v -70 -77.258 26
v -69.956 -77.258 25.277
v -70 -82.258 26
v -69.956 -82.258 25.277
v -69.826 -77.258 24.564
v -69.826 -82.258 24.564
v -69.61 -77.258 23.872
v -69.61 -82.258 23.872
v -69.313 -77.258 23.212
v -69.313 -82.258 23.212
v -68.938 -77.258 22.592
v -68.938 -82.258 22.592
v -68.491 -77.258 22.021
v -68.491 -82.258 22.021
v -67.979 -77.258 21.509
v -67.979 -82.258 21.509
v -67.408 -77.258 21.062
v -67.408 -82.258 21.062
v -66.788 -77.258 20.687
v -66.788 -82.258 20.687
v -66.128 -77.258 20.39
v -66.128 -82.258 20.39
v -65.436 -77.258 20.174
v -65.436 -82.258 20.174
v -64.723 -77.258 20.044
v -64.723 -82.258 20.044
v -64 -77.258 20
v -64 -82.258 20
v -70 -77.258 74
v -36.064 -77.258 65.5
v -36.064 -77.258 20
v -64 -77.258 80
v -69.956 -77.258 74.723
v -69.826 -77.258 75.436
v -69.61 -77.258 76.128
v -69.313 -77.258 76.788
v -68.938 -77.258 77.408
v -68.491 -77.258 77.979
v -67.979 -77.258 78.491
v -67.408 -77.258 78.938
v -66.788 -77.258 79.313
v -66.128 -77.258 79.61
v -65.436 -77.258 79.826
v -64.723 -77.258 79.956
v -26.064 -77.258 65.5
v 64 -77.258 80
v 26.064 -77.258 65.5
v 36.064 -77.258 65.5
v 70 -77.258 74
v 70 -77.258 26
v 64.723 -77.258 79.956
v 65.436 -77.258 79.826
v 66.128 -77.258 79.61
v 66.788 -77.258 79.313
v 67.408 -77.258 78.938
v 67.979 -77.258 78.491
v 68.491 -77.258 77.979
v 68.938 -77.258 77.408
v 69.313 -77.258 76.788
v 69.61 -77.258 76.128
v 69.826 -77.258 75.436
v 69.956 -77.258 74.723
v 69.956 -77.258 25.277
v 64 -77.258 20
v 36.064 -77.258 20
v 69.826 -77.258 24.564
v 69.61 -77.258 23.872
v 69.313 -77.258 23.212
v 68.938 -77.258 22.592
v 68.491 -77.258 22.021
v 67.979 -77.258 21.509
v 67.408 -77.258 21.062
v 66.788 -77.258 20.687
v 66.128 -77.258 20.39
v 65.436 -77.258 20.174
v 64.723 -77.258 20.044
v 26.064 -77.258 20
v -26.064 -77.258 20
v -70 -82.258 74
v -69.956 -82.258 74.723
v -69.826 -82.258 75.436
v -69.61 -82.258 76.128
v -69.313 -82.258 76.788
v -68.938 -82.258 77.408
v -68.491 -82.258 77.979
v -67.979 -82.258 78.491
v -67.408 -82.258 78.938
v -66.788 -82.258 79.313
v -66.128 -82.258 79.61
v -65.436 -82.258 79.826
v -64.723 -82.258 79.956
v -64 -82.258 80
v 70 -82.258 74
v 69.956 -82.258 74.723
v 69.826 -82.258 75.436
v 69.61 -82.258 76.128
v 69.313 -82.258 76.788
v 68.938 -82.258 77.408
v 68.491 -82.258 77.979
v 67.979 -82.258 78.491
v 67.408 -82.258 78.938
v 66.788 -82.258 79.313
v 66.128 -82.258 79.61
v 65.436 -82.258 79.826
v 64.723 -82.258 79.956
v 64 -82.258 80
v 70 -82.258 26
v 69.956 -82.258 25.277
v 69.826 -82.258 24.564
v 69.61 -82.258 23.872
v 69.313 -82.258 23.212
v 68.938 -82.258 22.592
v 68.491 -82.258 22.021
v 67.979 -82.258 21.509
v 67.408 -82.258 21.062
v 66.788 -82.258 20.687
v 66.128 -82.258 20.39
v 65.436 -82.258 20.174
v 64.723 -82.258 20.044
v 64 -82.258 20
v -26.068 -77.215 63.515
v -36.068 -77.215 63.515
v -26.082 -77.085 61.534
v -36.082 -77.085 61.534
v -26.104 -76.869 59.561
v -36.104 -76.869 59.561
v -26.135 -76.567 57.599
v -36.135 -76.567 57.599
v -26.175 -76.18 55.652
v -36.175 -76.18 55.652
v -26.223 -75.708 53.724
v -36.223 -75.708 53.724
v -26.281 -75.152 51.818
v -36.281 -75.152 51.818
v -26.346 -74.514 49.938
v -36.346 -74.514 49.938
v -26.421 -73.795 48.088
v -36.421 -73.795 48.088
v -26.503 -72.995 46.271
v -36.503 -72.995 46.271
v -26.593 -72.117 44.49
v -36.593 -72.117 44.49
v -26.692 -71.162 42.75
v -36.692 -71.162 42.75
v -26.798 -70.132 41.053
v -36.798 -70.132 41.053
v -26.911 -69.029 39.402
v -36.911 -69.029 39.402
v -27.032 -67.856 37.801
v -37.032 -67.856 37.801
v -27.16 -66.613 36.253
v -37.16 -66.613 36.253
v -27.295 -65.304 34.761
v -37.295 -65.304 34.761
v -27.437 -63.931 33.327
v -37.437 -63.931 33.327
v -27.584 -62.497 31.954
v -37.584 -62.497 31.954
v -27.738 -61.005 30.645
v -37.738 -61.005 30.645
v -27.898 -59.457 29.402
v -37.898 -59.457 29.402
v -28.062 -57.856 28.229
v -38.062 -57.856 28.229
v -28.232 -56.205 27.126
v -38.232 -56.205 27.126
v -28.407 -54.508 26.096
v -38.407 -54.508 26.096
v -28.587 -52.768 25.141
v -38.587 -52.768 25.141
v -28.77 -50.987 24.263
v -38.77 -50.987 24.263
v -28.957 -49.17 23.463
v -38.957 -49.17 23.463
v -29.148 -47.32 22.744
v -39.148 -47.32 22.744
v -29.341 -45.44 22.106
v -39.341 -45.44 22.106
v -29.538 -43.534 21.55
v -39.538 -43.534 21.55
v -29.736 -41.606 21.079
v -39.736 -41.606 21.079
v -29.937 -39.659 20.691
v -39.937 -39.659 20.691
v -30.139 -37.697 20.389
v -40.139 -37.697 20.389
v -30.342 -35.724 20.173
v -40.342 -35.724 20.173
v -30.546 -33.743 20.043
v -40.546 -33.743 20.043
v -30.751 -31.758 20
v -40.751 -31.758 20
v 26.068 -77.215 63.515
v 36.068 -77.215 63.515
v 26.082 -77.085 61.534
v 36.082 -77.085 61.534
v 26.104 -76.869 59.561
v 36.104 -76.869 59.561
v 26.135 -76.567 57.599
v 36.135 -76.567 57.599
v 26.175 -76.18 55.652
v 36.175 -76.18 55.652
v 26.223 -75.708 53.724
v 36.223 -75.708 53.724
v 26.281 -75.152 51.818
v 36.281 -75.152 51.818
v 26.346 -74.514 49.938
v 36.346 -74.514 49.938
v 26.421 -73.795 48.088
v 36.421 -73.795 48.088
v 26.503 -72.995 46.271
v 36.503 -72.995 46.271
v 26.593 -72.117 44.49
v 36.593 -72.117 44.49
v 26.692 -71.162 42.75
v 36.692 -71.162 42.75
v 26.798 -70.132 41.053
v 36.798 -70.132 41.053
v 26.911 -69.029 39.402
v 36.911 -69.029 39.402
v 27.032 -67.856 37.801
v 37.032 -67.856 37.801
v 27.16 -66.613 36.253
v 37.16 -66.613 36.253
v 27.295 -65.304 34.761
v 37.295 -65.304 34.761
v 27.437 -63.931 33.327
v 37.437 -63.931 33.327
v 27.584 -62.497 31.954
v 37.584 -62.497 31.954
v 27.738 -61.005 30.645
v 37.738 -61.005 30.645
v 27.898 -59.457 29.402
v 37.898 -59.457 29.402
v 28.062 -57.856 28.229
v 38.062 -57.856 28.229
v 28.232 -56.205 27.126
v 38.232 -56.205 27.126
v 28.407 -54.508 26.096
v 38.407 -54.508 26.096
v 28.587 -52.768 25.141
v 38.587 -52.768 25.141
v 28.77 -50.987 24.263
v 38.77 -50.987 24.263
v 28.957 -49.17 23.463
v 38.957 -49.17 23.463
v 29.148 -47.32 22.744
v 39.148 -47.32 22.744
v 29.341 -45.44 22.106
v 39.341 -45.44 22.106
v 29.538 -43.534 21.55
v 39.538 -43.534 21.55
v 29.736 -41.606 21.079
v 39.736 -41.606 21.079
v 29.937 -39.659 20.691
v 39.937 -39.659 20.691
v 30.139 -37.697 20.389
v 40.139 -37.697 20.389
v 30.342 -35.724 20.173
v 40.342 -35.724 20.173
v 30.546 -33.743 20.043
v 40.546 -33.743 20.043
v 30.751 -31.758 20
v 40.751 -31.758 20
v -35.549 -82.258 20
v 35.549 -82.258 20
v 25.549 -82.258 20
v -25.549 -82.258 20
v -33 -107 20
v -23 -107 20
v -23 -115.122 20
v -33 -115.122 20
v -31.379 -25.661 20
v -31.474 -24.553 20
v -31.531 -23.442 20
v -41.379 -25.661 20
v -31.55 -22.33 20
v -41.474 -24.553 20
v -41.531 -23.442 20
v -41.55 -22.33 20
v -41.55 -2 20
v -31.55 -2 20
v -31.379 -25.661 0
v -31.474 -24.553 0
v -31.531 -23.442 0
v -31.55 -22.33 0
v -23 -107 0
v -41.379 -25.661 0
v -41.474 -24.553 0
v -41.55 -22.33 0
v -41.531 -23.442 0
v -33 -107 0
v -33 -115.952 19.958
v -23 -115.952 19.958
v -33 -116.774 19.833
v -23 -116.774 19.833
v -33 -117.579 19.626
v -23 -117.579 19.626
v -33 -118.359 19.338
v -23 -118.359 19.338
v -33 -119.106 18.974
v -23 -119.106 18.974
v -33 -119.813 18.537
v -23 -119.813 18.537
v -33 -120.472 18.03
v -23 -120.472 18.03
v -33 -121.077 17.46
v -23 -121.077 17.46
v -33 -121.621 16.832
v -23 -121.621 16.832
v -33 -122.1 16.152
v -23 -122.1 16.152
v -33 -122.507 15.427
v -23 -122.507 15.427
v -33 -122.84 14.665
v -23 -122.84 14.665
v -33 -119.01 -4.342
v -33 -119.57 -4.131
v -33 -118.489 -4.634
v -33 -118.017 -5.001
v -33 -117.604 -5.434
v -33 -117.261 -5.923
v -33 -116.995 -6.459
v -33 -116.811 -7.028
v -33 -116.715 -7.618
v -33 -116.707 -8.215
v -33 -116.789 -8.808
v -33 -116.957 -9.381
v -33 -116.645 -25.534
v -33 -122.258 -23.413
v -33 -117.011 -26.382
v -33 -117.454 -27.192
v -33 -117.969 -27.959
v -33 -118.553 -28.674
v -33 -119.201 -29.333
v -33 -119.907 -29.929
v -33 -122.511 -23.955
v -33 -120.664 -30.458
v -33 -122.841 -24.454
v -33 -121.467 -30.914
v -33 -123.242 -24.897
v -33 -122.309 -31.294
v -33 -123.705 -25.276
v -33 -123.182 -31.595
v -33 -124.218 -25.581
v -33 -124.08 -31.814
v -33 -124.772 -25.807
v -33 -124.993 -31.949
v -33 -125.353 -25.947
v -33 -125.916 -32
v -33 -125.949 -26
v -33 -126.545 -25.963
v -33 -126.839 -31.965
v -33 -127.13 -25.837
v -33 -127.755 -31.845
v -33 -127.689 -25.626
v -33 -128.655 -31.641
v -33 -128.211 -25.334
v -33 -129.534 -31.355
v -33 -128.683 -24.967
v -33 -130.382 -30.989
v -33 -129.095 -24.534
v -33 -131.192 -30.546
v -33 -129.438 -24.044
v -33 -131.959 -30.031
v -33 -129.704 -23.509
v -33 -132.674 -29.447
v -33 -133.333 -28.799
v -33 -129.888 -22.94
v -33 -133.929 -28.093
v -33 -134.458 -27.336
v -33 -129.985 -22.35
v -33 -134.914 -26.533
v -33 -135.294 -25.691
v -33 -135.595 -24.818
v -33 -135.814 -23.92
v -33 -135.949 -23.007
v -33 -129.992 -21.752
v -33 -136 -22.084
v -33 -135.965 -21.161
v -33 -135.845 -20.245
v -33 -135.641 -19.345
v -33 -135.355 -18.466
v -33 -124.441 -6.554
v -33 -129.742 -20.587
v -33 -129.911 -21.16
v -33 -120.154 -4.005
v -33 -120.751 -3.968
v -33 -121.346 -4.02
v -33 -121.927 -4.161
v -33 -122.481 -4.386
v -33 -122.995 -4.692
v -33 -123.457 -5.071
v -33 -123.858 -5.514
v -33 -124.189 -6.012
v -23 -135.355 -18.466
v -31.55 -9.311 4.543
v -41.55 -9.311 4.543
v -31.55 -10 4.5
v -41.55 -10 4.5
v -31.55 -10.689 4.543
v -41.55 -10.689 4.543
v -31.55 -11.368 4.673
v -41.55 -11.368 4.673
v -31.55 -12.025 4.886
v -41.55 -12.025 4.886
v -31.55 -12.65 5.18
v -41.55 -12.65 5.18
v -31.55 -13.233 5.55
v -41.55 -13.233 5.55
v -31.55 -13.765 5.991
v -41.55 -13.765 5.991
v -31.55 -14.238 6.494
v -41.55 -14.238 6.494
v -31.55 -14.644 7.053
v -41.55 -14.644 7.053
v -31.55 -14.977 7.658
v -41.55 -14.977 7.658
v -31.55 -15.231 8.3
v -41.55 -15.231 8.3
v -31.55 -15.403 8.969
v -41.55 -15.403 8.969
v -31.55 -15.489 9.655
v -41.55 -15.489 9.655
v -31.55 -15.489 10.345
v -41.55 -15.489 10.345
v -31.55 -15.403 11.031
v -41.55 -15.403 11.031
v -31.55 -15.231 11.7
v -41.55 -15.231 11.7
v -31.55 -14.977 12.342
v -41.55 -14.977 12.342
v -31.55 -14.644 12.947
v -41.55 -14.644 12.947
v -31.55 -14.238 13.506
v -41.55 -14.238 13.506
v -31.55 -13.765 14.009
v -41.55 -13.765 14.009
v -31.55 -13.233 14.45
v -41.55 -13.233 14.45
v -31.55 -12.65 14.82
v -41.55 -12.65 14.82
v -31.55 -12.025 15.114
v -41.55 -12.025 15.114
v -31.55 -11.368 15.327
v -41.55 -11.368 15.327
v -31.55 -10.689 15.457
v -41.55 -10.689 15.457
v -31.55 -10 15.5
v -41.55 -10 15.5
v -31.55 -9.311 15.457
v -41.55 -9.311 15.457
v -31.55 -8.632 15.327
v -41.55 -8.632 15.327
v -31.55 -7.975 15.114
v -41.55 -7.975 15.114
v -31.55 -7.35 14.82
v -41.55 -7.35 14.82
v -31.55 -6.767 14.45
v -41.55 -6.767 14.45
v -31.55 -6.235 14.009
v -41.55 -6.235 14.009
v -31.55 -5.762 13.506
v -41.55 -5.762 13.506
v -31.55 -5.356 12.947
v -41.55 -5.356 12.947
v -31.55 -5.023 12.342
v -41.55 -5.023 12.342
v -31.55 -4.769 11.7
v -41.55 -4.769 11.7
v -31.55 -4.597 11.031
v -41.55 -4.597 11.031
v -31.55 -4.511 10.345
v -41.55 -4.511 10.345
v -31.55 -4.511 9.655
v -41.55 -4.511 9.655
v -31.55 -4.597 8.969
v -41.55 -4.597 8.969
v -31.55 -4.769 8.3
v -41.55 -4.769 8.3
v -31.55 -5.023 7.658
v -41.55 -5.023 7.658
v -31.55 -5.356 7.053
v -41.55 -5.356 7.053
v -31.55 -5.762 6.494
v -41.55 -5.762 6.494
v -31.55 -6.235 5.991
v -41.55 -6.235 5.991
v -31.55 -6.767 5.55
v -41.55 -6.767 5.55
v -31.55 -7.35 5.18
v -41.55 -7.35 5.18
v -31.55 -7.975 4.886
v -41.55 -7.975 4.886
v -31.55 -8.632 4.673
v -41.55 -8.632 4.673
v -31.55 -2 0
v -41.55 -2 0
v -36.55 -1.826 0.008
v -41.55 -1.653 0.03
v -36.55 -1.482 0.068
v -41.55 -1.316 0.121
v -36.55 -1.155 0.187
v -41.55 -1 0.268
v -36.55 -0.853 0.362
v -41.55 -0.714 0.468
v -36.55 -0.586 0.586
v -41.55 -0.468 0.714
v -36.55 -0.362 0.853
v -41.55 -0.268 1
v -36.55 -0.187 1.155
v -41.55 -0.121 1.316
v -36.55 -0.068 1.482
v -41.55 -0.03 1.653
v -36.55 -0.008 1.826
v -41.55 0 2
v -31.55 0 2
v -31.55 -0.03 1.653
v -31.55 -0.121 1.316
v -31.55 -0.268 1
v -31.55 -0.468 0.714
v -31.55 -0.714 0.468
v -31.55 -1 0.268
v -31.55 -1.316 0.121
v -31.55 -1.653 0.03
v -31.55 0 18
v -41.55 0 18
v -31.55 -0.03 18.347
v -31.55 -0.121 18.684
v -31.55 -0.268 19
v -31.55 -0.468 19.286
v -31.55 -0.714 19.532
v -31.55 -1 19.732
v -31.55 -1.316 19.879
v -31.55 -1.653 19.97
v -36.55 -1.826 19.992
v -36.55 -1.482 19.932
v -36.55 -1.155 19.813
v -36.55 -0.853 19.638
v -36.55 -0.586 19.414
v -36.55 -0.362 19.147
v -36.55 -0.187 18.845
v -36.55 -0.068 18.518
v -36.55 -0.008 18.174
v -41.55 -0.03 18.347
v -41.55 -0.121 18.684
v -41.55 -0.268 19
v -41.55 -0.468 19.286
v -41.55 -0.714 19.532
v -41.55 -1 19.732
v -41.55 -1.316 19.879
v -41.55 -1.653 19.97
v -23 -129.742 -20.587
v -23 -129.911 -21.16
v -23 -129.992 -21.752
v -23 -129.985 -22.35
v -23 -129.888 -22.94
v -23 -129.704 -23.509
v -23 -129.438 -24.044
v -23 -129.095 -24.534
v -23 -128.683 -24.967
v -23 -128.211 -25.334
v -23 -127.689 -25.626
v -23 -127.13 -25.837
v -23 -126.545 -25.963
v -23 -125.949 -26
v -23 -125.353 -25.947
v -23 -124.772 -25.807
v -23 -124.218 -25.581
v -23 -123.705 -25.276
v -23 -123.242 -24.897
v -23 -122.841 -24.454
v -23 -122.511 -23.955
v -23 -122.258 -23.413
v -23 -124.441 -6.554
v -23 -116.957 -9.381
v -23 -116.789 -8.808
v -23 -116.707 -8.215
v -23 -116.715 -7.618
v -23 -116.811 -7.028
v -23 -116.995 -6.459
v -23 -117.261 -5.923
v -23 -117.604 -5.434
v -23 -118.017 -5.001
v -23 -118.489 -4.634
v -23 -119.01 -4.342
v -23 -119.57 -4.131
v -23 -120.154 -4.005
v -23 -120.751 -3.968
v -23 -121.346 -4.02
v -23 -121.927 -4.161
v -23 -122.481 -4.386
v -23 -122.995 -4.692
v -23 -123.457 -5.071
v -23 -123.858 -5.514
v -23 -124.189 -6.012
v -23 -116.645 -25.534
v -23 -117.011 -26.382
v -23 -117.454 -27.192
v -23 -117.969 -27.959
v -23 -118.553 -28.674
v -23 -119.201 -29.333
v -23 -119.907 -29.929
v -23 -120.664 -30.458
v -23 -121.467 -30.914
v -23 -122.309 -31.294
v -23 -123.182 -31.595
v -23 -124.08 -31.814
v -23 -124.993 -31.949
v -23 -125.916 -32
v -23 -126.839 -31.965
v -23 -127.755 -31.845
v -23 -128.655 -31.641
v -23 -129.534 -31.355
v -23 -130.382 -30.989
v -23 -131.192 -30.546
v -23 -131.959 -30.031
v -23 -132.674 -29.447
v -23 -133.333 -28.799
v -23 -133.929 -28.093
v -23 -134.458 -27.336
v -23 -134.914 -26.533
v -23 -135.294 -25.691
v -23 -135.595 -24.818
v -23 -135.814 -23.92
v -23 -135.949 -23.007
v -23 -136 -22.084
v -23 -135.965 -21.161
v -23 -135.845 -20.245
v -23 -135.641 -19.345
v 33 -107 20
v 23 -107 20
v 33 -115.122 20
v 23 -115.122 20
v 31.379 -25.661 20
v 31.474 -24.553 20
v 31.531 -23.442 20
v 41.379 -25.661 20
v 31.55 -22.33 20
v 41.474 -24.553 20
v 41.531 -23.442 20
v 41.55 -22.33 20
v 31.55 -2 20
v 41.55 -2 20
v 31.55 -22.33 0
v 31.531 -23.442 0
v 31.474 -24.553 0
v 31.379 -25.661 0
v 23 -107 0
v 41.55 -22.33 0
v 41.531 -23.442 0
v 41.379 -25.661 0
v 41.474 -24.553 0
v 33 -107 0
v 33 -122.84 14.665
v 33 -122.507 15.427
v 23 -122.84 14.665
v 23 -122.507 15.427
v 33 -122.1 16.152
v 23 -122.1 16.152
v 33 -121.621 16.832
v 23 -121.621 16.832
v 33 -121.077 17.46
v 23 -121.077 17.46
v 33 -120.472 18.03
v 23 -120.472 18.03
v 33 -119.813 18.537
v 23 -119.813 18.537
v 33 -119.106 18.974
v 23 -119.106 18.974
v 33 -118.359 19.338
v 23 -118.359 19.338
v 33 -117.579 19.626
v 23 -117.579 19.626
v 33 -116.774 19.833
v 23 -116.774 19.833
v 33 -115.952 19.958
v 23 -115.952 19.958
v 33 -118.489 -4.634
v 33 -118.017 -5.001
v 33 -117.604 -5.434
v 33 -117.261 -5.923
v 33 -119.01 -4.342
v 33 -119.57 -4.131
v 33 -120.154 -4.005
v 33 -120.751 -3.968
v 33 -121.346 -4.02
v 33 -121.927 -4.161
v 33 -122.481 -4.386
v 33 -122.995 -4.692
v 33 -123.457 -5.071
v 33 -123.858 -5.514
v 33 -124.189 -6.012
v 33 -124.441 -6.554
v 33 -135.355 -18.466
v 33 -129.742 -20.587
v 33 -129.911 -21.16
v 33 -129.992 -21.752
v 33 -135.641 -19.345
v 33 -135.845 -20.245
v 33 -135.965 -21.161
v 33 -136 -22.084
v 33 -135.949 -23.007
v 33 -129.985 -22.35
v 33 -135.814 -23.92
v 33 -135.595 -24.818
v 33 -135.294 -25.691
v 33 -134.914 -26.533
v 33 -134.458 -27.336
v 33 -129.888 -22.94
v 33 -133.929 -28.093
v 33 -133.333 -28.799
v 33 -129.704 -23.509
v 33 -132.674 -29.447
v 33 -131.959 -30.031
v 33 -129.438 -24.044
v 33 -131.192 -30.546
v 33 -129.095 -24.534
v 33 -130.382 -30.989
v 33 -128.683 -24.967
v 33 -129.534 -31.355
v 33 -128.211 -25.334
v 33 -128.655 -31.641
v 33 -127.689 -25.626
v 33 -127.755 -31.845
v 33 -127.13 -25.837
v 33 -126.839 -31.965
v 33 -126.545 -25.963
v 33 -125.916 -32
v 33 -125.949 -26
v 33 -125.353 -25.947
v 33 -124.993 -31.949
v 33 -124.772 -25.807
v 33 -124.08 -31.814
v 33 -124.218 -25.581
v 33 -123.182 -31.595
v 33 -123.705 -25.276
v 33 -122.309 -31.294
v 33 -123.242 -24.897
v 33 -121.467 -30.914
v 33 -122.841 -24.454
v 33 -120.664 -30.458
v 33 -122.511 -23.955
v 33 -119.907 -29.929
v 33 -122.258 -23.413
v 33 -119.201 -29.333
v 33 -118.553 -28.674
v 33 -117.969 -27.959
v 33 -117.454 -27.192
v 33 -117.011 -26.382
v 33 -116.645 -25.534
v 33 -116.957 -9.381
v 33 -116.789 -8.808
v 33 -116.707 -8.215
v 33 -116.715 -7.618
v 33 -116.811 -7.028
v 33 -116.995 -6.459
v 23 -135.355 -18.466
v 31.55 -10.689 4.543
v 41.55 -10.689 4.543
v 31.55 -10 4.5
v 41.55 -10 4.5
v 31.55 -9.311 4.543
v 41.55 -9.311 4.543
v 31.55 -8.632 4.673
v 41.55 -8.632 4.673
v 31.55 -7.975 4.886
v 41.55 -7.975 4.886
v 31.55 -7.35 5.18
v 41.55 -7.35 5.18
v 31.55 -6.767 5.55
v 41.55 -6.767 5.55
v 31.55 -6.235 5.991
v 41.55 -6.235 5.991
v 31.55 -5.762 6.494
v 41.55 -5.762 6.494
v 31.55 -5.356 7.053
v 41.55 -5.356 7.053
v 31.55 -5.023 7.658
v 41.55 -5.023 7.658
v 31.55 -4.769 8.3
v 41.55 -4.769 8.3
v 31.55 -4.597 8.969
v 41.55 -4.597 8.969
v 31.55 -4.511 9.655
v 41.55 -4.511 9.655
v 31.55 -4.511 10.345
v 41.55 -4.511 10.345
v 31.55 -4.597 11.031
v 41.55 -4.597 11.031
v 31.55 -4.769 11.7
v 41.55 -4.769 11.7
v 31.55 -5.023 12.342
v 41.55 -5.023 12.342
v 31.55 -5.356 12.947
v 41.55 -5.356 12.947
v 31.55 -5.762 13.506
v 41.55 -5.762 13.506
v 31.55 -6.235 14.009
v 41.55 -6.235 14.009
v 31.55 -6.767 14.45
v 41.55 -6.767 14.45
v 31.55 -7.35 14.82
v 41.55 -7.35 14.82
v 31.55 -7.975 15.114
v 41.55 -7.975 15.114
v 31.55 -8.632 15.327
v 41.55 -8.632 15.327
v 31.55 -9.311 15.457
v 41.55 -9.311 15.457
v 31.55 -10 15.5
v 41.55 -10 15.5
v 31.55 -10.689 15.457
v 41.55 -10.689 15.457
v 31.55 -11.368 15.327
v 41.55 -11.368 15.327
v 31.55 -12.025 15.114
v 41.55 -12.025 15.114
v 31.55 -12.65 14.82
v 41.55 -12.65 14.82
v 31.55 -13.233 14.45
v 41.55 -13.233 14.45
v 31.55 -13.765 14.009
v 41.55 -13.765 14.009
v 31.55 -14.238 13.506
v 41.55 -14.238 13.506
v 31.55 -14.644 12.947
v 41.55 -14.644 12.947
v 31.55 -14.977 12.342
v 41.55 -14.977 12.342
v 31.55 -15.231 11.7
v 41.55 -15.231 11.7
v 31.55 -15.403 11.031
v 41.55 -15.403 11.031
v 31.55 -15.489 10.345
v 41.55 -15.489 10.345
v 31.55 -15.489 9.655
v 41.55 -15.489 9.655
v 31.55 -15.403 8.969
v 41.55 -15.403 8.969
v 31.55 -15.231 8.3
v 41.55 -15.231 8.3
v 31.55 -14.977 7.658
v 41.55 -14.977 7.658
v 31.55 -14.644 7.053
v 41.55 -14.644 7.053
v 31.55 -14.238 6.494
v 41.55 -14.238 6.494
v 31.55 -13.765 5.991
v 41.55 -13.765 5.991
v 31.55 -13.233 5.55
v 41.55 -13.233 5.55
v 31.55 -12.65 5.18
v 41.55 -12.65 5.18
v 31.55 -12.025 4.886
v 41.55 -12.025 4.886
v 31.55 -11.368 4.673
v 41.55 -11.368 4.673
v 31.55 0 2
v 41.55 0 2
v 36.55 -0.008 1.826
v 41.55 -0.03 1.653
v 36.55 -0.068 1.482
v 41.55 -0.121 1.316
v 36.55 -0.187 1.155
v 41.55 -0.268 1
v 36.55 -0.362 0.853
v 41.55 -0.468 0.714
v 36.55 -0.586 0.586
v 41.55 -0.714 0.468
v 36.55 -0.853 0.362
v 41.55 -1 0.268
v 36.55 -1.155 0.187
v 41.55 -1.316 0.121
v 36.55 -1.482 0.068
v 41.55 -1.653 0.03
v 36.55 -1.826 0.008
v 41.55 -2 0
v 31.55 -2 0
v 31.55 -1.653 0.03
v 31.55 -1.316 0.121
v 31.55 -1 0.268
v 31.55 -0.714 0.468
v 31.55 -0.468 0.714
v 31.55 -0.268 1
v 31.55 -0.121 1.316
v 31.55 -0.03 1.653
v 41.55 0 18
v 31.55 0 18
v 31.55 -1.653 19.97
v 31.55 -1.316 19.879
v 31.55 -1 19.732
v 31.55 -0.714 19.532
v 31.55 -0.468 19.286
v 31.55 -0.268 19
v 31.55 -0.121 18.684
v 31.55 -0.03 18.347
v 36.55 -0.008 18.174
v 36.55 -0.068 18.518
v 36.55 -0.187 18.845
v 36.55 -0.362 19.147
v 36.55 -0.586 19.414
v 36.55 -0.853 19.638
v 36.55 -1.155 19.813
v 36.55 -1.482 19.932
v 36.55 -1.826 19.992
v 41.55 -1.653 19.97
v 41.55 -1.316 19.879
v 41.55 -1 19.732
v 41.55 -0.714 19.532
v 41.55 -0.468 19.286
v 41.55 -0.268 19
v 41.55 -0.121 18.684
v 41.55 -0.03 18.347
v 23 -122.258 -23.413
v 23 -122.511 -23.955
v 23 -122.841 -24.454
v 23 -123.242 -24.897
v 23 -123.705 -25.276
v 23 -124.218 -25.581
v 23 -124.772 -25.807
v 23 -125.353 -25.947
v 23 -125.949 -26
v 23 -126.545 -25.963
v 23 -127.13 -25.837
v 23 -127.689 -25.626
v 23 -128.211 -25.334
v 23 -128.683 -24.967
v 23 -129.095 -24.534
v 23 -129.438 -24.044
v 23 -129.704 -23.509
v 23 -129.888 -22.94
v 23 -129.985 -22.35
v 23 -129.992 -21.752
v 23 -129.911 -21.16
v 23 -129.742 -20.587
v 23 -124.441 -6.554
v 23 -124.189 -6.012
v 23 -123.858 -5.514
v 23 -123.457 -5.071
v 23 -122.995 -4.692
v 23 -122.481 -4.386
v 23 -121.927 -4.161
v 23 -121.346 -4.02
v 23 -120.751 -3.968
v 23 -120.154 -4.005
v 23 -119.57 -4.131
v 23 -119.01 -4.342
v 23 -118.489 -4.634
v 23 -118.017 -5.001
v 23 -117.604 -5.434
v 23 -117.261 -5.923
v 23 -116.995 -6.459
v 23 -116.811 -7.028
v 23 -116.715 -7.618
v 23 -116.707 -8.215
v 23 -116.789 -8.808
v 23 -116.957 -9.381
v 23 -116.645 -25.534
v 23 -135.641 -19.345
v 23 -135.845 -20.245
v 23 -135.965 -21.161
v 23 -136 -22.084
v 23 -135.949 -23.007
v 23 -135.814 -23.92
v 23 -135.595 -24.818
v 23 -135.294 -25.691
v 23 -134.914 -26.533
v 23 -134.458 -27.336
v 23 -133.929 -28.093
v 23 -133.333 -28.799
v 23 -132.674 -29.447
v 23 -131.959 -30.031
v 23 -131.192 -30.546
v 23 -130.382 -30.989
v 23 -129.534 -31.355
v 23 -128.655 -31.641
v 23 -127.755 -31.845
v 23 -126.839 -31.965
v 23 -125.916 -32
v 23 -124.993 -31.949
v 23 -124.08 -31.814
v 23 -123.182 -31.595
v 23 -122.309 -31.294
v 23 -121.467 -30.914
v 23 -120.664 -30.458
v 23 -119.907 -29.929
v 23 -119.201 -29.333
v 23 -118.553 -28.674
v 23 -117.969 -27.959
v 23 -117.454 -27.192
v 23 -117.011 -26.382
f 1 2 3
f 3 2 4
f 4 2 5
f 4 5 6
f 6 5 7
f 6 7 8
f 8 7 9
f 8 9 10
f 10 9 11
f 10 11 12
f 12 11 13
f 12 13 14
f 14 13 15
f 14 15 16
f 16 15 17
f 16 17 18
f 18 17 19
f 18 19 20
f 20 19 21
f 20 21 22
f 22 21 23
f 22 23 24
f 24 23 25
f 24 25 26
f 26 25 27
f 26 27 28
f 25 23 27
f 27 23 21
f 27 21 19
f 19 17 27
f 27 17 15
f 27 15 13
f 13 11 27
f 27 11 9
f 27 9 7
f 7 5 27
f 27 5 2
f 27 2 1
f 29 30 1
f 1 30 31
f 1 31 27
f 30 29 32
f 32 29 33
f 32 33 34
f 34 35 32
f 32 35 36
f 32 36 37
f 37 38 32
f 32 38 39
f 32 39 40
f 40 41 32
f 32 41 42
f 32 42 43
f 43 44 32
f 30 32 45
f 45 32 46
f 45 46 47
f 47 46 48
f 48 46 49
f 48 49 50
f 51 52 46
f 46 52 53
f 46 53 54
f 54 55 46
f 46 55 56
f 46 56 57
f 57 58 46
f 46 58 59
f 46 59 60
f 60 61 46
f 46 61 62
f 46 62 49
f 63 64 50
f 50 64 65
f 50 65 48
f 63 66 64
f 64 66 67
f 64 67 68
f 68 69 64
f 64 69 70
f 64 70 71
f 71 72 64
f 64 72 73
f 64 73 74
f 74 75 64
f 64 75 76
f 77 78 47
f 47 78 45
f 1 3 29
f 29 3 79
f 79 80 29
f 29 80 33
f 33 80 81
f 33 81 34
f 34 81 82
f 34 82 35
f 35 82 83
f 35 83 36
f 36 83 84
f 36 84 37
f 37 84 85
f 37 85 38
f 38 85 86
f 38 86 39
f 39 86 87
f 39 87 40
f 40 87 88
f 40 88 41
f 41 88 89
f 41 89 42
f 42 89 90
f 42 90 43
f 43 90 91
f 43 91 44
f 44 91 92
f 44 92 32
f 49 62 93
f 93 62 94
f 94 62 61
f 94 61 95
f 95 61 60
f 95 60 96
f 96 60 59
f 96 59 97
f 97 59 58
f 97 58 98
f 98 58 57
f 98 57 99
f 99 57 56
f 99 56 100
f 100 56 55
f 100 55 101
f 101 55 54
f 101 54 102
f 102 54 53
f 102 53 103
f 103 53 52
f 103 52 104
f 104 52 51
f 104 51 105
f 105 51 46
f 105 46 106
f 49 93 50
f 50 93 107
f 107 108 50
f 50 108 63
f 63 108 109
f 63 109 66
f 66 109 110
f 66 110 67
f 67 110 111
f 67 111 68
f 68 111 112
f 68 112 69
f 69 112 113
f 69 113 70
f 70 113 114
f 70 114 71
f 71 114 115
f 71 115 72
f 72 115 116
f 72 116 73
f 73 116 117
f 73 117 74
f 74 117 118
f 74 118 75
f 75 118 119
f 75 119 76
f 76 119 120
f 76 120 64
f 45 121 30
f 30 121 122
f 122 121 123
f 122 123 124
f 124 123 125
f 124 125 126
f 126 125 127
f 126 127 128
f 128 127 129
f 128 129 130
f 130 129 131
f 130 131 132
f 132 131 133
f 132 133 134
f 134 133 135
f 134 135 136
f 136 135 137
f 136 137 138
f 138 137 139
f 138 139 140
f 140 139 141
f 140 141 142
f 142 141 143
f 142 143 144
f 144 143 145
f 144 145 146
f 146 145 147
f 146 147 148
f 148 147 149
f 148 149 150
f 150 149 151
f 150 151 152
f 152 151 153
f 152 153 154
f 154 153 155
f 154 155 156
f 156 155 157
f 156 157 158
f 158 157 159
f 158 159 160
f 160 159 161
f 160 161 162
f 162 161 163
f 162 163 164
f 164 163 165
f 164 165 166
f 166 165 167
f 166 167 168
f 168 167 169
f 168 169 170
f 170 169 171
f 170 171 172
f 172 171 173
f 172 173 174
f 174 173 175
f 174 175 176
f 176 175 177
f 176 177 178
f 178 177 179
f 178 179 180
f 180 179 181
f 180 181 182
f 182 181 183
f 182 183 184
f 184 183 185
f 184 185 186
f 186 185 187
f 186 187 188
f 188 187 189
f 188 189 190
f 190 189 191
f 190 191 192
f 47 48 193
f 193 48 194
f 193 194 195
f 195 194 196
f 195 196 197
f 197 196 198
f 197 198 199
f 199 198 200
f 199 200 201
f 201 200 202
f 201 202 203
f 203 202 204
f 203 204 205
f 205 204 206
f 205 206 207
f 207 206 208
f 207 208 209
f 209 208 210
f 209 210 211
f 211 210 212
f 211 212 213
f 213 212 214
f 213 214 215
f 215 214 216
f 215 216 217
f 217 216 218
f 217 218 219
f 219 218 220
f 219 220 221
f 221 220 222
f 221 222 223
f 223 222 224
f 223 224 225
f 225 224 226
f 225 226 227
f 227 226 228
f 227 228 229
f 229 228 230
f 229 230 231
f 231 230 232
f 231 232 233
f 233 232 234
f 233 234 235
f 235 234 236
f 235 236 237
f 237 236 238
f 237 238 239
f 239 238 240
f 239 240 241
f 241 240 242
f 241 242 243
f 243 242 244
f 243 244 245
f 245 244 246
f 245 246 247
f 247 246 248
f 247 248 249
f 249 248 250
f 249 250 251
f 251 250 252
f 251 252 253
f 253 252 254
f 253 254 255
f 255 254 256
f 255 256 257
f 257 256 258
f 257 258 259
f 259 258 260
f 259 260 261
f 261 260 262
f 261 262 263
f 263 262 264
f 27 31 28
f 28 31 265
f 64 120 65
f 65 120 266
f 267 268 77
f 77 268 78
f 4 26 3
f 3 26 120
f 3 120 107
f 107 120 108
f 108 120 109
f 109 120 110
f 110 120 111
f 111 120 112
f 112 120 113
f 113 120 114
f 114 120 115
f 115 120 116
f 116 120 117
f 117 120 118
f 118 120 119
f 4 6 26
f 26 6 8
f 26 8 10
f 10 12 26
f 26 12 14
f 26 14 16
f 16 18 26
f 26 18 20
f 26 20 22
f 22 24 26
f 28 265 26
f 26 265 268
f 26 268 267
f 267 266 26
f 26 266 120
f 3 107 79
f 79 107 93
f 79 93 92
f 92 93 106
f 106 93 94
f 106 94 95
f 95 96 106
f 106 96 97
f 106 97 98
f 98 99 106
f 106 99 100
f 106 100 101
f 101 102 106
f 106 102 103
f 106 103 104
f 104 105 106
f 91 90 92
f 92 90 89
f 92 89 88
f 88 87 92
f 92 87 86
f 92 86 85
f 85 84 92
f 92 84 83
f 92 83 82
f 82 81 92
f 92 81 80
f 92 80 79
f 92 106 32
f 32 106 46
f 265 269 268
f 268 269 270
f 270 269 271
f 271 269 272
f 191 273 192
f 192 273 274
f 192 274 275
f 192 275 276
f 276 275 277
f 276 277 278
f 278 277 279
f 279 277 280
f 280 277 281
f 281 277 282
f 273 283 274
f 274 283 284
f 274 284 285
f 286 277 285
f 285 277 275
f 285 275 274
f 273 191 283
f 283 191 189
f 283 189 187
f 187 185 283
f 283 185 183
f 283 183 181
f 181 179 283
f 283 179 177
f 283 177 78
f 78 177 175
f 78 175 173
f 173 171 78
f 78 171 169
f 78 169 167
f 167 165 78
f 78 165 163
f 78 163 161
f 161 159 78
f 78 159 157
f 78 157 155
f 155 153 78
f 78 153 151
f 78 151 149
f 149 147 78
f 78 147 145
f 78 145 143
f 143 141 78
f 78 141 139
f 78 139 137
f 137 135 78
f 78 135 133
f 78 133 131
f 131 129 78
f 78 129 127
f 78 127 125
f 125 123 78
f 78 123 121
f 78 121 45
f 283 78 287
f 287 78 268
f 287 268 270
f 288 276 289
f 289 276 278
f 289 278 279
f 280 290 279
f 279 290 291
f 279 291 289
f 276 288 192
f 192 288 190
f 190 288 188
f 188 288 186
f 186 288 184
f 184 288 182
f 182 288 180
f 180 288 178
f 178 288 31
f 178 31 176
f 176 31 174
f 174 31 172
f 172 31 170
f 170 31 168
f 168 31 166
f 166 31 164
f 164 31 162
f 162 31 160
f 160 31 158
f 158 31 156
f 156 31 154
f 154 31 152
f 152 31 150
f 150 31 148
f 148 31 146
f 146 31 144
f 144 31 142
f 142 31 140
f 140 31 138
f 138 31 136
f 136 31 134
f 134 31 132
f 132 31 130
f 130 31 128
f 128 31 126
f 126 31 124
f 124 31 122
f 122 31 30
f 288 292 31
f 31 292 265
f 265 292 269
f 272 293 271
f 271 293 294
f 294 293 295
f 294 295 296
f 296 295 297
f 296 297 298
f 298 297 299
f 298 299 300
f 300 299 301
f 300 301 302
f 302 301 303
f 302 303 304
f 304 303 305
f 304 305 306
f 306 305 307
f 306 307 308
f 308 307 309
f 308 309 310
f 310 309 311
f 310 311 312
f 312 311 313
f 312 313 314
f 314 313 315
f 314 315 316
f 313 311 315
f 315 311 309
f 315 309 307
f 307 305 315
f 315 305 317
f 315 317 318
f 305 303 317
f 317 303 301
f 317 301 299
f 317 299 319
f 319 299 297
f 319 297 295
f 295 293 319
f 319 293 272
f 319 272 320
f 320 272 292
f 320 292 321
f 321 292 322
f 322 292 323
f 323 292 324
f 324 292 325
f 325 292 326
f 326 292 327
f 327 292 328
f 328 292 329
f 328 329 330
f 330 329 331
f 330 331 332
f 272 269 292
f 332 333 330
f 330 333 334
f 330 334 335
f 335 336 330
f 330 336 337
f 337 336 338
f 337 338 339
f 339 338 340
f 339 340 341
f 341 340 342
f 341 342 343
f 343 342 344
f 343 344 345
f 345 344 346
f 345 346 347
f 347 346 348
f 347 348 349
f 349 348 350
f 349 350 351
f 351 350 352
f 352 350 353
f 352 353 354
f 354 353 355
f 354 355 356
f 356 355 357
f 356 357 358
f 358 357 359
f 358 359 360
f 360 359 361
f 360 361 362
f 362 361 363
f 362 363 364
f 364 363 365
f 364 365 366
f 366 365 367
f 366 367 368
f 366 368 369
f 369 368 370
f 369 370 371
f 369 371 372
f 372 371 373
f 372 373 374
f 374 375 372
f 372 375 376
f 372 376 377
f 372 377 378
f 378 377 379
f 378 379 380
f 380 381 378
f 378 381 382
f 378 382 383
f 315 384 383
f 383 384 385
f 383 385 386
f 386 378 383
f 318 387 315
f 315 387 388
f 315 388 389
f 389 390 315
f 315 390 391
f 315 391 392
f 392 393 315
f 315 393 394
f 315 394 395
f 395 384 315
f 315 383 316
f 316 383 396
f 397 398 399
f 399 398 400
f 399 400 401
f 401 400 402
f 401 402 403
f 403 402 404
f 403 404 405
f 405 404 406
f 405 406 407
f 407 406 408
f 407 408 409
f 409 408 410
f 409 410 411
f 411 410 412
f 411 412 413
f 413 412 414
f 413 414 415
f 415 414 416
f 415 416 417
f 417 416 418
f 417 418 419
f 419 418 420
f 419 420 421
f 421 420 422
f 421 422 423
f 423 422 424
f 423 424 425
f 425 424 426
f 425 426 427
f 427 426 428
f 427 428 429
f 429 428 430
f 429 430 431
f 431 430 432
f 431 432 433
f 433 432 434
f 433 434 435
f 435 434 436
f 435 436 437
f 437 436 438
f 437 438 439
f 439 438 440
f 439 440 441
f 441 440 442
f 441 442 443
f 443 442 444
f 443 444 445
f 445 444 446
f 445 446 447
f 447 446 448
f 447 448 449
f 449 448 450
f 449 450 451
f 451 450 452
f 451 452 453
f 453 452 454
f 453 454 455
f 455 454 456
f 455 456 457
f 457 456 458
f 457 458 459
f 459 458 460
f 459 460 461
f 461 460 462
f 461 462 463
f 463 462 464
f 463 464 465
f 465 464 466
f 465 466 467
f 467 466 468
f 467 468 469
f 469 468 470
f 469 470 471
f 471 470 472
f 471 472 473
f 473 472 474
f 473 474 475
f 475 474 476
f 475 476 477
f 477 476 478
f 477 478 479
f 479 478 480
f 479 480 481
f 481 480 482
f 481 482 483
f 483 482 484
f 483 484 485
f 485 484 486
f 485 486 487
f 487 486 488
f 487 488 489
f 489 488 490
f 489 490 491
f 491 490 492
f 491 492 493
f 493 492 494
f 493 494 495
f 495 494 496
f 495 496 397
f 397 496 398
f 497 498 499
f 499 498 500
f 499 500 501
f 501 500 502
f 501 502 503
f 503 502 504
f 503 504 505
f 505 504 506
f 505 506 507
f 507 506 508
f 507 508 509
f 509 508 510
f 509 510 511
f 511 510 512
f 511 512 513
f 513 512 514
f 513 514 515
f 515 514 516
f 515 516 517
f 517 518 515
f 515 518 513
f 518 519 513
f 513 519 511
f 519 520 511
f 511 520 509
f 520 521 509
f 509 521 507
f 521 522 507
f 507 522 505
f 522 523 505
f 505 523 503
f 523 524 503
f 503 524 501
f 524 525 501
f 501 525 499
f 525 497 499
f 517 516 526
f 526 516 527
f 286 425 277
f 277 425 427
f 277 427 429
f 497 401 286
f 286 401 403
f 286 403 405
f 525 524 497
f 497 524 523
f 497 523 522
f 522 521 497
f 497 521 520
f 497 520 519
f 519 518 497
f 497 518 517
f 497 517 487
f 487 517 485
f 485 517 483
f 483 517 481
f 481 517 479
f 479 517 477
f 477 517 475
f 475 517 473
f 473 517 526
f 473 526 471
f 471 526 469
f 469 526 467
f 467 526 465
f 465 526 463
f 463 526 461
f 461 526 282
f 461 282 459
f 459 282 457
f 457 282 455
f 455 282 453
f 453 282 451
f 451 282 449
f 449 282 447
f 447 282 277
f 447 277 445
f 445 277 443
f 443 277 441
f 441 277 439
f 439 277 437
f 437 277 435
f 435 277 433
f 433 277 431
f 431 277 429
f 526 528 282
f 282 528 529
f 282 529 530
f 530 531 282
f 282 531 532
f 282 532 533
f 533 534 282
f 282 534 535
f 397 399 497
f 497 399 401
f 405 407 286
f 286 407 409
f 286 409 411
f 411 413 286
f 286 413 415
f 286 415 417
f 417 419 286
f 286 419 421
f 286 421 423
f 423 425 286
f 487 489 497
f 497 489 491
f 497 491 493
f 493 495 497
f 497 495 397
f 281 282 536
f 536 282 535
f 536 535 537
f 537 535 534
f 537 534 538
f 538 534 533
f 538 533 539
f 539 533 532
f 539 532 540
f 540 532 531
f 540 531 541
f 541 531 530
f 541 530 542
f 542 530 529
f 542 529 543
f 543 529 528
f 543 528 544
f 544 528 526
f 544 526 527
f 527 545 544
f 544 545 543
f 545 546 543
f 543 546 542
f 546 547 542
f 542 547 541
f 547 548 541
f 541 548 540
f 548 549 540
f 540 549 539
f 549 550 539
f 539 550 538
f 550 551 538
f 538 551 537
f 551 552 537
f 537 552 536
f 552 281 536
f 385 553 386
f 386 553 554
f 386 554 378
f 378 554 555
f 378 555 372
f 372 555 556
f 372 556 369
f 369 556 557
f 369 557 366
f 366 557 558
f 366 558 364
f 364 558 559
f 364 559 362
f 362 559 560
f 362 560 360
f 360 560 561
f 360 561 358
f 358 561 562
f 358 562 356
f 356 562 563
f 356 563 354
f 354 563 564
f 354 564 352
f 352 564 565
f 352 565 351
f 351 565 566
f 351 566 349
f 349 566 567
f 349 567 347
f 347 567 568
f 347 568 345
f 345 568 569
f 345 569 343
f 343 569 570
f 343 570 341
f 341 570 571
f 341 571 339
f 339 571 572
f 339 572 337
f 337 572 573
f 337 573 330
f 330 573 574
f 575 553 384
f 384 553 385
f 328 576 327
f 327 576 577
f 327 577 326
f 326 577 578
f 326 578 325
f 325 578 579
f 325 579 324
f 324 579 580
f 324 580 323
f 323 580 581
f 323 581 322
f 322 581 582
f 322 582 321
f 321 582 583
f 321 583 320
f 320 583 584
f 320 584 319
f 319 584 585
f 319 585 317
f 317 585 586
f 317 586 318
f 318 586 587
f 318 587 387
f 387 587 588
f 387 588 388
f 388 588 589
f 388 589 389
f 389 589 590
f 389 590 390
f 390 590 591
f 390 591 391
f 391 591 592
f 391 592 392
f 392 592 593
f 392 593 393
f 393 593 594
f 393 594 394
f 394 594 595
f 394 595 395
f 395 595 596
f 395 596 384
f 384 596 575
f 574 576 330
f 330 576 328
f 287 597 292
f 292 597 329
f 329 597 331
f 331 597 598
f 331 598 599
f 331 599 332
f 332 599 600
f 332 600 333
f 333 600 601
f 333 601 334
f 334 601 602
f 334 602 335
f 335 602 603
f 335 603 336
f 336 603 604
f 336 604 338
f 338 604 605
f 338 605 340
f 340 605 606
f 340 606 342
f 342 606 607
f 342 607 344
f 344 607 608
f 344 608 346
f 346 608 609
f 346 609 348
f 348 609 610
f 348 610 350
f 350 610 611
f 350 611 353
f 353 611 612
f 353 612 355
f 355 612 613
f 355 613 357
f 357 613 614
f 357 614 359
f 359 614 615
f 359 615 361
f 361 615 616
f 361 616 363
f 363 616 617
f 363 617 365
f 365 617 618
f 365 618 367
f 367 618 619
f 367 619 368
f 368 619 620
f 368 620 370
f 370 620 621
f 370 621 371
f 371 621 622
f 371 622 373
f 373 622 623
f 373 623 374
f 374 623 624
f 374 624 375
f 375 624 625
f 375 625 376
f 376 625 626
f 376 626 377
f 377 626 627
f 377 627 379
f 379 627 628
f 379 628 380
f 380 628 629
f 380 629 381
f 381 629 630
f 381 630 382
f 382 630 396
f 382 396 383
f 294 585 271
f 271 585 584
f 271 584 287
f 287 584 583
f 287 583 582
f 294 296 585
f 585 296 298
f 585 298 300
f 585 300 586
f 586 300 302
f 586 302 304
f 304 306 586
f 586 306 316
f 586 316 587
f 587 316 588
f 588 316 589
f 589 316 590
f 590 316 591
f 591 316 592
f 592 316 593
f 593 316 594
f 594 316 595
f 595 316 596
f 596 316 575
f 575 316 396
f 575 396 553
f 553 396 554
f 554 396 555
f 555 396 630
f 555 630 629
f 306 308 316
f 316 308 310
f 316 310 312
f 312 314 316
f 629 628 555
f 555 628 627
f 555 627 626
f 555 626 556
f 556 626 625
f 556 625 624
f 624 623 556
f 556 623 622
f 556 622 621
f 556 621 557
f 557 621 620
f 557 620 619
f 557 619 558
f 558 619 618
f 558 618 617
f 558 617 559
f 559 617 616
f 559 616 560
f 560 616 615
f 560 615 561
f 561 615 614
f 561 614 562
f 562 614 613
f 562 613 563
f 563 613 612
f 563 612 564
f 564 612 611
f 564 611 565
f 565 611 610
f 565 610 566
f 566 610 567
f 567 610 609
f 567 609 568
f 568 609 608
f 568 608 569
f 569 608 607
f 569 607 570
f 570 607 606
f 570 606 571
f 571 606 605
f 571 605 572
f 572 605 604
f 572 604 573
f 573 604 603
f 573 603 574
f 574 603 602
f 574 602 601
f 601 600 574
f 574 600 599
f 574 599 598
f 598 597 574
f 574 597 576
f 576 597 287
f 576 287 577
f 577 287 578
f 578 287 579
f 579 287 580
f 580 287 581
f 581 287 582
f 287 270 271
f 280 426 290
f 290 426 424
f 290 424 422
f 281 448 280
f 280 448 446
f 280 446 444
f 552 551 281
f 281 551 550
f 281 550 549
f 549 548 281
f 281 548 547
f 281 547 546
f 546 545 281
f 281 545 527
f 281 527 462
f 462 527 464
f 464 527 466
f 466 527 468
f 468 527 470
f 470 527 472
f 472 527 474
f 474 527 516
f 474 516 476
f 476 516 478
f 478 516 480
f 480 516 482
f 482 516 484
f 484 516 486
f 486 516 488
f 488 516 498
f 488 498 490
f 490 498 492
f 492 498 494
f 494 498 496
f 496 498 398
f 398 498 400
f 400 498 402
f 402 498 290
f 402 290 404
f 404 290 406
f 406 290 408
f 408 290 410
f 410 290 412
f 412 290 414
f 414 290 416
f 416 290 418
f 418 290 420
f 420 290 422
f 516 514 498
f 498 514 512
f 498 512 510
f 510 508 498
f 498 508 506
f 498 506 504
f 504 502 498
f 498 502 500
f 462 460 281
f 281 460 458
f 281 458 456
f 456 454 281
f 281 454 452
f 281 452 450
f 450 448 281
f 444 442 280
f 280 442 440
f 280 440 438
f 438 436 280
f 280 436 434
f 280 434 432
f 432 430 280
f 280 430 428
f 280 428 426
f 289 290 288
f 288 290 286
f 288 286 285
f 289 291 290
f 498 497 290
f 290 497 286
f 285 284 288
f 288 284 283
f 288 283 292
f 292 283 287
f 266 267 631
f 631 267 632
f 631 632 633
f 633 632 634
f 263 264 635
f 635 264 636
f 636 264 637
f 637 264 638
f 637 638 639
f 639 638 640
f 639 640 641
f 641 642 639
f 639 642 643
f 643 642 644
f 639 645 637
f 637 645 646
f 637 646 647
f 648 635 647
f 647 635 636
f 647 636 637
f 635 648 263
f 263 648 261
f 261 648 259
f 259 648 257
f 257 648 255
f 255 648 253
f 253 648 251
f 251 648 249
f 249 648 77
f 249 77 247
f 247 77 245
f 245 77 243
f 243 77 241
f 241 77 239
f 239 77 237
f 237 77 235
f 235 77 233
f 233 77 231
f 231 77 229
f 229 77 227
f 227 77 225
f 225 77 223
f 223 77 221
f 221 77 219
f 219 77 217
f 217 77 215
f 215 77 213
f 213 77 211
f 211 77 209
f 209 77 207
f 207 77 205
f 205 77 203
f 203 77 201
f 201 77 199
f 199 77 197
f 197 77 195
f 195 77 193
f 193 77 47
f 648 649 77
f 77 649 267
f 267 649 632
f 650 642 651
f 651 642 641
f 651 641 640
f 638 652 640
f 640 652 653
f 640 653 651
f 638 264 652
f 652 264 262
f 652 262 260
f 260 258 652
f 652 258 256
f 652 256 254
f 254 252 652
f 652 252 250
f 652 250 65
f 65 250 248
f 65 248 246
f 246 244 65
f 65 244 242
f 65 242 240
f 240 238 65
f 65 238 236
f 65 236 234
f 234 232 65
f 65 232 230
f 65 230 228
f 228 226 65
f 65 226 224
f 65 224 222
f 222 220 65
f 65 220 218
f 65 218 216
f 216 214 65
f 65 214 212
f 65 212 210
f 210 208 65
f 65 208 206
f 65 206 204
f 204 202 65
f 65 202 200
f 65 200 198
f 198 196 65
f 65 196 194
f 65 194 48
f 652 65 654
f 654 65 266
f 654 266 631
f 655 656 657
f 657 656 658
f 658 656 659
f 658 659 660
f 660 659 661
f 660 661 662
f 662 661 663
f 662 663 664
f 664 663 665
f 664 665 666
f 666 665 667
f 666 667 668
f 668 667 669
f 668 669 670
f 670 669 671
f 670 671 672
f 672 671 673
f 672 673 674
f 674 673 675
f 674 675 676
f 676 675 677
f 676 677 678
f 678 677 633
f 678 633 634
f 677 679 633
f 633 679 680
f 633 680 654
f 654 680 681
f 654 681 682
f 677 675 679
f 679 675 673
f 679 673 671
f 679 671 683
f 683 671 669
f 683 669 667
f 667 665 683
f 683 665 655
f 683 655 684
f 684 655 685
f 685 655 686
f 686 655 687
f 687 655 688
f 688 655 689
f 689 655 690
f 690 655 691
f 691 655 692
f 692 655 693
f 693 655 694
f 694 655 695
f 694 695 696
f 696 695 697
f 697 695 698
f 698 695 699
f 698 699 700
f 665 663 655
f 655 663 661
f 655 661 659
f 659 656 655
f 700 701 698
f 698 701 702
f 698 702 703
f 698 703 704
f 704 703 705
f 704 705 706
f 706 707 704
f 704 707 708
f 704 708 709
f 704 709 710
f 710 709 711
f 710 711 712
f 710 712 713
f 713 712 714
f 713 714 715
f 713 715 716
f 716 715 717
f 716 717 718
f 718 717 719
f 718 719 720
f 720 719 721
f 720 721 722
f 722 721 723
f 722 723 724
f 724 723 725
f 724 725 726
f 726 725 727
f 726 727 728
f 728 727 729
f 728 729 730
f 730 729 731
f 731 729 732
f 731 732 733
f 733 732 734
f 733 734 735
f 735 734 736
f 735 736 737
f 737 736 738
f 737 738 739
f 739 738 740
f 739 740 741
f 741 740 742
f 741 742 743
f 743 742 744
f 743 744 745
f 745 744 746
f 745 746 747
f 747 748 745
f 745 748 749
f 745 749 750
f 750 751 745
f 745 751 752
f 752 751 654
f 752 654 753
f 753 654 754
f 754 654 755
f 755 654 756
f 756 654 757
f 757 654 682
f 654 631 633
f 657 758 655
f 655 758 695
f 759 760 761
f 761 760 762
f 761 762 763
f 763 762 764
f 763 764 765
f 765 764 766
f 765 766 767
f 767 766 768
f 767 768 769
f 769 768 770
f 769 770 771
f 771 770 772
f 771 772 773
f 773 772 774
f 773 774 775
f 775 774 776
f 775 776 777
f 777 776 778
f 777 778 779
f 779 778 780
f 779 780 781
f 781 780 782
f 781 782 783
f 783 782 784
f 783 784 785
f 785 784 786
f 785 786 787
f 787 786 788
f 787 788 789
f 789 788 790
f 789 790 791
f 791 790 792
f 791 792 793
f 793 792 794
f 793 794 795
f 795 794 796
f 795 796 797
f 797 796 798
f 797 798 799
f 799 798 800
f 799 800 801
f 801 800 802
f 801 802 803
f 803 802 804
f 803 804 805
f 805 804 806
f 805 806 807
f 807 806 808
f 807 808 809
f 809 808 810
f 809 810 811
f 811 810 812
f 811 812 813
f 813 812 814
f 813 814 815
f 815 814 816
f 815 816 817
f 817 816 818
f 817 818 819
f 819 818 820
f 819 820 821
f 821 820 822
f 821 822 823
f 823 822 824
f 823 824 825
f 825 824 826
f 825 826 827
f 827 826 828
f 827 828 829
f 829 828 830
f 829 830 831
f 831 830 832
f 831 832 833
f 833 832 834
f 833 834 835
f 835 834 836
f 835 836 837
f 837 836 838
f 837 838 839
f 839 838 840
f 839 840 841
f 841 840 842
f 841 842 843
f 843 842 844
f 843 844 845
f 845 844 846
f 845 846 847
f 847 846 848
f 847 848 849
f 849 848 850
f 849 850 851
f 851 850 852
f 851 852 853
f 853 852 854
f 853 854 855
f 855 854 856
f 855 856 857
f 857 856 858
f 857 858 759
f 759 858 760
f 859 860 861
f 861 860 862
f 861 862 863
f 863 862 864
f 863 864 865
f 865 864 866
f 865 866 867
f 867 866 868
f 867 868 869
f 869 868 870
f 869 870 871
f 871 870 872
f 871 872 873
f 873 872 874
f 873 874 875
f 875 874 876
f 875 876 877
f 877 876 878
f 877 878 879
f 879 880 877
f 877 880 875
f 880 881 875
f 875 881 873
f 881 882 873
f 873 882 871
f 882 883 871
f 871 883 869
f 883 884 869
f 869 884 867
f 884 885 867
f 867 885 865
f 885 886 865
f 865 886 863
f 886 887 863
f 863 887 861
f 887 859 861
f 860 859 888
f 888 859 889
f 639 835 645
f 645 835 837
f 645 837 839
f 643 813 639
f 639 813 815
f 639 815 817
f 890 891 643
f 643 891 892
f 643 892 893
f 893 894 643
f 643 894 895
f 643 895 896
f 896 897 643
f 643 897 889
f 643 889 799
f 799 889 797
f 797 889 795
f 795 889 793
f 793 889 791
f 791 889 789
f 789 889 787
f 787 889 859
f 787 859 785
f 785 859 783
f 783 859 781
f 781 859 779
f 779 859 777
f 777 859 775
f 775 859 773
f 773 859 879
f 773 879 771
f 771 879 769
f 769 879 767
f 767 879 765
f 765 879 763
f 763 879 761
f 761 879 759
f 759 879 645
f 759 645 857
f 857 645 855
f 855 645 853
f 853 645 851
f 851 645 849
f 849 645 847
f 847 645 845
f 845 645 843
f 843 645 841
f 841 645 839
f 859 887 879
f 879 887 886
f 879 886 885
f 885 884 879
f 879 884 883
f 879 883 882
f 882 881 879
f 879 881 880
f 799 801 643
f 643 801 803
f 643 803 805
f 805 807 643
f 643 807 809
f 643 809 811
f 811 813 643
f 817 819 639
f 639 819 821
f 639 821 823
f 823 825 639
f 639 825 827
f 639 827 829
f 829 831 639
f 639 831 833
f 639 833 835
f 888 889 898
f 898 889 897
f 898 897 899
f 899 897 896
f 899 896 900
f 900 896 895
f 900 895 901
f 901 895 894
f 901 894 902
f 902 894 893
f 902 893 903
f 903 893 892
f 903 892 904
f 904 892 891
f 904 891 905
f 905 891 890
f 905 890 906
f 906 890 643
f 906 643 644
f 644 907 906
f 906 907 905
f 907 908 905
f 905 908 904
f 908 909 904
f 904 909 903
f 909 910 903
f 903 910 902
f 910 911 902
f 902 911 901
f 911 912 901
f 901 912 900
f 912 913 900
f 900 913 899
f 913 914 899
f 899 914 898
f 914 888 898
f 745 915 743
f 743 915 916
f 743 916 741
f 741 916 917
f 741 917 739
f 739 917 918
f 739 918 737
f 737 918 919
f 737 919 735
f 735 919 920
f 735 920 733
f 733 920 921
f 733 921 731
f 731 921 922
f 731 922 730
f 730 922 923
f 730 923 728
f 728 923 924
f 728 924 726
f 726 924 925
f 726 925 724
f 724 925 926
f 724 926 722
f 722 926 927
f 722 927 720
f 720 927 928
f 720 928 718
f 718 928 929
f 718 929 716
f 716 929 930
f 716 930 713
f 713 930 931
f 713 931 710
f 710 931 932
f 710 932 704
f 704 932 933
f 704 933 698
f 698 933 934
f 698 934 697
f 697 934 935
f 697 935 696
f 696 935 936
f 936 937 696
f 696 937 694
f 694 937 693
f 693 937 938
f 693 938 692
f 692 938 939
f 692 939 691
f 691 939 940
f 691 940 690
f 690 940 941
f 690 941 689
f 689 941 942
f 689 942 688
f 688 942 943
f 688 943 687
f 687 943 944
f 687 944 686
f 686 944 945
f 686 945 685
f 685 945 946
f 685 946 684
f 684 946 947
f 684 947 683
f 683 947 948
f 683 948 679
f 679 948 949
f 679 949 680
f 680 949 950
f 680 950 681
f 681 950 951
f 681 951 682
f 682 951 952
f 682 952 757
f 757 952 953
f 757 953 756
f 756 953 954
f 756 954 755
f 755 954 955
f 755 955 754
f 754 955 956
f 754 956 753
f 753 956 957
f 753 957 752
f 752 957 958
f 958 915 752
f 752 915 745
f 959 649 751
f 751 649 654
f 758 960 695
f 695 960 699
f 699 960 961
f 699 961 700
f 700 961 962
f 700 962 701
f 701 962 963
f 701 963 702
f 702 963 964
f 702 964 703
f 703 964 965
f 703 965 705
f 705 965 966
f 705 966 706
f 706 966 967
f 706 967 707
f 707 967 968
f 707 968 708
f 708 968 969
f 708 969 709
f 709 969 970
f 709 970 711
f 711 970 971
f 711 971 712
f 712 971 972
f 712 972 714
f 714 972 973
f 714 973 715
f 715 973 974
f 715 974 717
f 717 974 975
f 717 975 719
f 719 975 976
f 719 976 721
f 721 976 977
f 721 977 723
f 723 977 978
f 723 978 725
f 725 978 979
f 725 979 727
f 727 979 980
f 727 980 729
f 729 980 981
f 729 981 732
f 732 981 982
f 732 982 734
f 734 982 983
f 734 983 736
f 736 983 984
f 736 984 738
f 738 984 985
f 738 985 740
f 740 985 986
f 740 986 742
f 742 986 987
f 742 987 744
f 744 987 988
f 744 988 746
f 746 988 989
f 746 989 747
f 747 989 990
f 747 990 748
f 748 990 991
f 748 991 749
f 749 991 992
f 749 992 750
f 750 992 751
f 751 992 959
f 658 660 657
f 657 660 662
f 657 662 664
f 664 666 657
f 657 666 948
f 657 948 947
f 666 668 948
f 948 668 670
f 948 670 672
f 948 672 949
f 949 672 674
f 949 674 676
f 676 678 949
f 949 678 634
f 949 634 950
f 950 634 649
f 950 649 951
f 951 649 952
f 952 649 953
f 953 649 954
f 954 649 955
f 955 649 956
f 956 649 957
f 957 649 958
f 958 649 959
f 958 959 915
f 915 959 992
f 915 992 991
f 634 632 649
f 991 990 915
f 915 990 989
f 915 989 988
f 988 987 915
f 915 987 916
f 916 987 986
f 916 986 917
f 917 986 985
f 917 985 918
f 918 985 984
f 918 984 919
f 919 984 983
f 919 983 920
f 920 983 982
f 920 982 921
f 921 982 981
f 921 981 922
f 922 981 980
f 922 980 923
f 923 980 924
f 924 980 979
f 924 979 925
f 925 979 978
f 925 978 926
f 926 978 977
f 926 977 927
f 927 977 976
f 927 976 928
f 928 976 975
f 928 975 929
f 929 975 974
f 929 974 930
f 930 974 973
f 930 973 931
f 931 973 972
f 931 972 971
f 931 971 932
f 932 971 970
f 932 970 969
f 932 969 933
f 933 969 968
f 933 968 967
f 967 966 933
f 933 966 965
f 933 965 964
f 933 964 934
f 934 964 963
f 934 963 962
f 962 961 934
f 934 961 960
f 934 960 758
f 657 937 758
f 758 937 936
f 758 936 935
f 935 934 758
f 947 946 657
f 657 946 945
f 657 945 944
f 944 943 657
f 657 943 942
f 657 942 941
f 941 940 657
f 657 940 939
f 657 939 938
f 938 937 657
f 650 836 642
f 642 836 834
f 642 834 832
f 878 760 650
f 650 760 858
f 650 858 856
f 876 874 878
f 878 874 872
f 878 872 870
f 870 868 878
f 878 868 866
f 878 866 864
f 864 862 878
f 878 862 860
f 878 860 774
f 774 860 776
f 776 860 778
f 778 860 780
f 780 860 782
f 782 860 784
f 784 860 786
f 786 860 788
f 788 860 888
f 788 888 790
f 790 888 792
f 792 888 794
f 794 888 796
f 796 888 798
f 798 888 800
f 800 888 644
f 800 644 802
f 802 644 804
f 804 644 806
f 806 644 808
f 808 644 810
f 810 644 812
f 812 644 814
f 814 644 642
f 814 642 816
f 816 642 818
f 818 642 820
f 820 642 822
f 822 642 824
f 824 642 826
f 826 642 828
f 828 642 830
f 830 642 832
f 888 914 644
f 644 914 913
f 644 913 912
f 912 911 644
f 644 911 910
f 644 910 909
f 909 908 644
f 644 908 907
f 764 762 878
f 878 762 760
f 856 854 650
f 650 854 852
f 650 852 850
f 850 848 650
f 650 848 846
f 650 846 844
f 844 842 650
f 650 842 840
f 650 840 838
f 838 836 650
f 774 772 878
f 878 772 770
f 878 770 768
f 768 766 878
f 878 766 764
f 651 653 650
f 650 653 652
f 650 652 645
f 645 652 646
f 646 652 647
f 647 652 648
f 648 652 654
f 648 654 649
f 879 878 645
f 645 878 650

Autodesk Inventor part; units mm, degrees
ref_plane "YZ Plane" through (0, 0, 0) normal (1, 0, 0) x (0, 1, 0)
ref_plane "XZ Plane" through (0, 0, 0) normal (0, 1, 0) x (-1, 0, 0)
sketch "Sketch3" plane through (0, 0, 0) normal (0, 0, 1) x (1, 0, 0)
  line L0 (41.55, 0) -> (41.55, -24)
  line L1 (41.55, -24) -> (33, -107)
  line L2 (33, -107) -> (23, -107)
  line L3 (23, -107) -> (31.55, -24)
  line L4 (31.55, -24) -> (31.55, 0)
  line L5 (31.55, 0) -> (41.55, 0)
  line L6 (-8.31, 0) -> (49.86, 0) projected
  point P0 (0, 0)
  dimension "barWidth" = 10
  dimension "d33" = 24
  dimension "d37" = 23
  dimension "d38" = 41.55
  dimension "d39" = 107
extrude "Extrusion2" add sketch "Sketch3" along normal blind 20
ref_plane "Work Plane1" through (23, -107, 0) normal (1, 0, 0) x (0, 0, 1)
sketch "Sketch4" plane through (23, -107, 0) normal (1, 0, 0) x (0, 0, 1)
  arc A0 (-18.4663, 28.3548) -> (-25.5337, 9.6452) centre (-22, 19) ccw
  line L0 (-25.5337, 9.6452) -> (0, 0)
  line L1 (20, 0) -> (0, 0)
  line L2 (0, 0) -> (20, 0) projected
  line L3 (-22, 19) -> (-7.9678, 13.6994) construction
  line L4 (-23.4135, 15.2581) -> (-9.3812, 9.9575)
  line L5 (-6.5543, 17.4414) -> (-20.5865, 22.7419)
  arc A1 (-20.5865, 22.7419) -> (-23.4135, 15.2581) centre (-22, 19) ccw
  arc A2 (-9.3812, 9.9575) -> (-6.5543, 17.4414) centre (-7.9678, 13.6994) ccw
  line L6 (20, 0) -> (20, 13.8245)
  line L7 (20, 13.8245) -> (-18.4663, 28.3548)
  line L8 (20, 0) -> (20, -83) projected
  line L9 (0, -83) -> (0, 0) projected
  point P0 (0, -107)
  point P1 (-14.9839, 16.3497)
  dimension "d23" = 15
  dimension "d40" = 8
  dimension "d41" = 20
  dimension "d42" = 20
  dimension "d43" = 22
extrude "Extrusion4" add sketch "Sketch4" along normal blind 10
fillet "Fillet1" radius 2 2 edges at (36.55, 0, 20) (36.55, 0, 0)
sketch "Sketch5" plane through (41.55, -24, 20) normal (1, 0, 0) x (0, 0, -1)
  circle A0 centre (10, 14) radius 5.5
  line L0 (20, 22) -> (20, 0) projected
  line L1 (0, 0) -> (0, 22) projected
  line L2 (18, 24) -> (2, 24) projected
  point P0 (20, 24)
  dimension "d29" = 11
  dimension "d30" = 20
  dimension "d31" = 10
  dimension "d32" = 10
extrude "Extrusion5" cut sketch "Sketch5" against normal up to next
fillet "Fillet2" radius 8.25 1 edges at (28, -120.8245, 20)
fillet "Fillet3" radius 32.5 2 edges at (41.55, -24, 10) (31.55, -24, 10)
mirror "Mirror1" about plane through (0, 0, 0) normal (1, 0, 0)
sketch "Sketch6" plane through (0, 0, 20) normal (0, 0, 1) x (1, 0, 0)
  line L0 (70, -82.2581) -> (-70, -82.2581)
  line L1 (-70, -82.2581) -> (-70, -77.2581)
  line L2 (-70, -77.2581) -> (70, -77.2581)
  line L3 (70, -77.2581) -> (70, -82.2581)
  line L4 (33, -122.2581) -> (33, -130) projected
  point P0 (0, 0)
  point P1 (33, -129.7419)
  dimension "d46" = 140
  dimension "d47" = 5
  dimension "d48" = 70
  dimension "d57" = 40
extrude "Extrusion6" add sketch "Sketch6" along normal blind 60
fillet "Fillet4" radius 45.5 2 edges at (31.0638, -77.2581, 20) (-31.0638, -77.2581, 20)
fillet "Fillet5" radius 6 4 edges at (70, -79.7581, 20) (70, -79.7581, 80) (-70, -79.7581, 80) (-70, -79.7581, 20)
equation "\"d41\" = d42"
equation "\"d24\" = barWidth"
equation "\"d31\" = 0.5 * d30"
equation "\"d27\" = barWidth"
equation "\"d48\" = 0.5 * d46"
properties part number "AUX_batterry_mount"
